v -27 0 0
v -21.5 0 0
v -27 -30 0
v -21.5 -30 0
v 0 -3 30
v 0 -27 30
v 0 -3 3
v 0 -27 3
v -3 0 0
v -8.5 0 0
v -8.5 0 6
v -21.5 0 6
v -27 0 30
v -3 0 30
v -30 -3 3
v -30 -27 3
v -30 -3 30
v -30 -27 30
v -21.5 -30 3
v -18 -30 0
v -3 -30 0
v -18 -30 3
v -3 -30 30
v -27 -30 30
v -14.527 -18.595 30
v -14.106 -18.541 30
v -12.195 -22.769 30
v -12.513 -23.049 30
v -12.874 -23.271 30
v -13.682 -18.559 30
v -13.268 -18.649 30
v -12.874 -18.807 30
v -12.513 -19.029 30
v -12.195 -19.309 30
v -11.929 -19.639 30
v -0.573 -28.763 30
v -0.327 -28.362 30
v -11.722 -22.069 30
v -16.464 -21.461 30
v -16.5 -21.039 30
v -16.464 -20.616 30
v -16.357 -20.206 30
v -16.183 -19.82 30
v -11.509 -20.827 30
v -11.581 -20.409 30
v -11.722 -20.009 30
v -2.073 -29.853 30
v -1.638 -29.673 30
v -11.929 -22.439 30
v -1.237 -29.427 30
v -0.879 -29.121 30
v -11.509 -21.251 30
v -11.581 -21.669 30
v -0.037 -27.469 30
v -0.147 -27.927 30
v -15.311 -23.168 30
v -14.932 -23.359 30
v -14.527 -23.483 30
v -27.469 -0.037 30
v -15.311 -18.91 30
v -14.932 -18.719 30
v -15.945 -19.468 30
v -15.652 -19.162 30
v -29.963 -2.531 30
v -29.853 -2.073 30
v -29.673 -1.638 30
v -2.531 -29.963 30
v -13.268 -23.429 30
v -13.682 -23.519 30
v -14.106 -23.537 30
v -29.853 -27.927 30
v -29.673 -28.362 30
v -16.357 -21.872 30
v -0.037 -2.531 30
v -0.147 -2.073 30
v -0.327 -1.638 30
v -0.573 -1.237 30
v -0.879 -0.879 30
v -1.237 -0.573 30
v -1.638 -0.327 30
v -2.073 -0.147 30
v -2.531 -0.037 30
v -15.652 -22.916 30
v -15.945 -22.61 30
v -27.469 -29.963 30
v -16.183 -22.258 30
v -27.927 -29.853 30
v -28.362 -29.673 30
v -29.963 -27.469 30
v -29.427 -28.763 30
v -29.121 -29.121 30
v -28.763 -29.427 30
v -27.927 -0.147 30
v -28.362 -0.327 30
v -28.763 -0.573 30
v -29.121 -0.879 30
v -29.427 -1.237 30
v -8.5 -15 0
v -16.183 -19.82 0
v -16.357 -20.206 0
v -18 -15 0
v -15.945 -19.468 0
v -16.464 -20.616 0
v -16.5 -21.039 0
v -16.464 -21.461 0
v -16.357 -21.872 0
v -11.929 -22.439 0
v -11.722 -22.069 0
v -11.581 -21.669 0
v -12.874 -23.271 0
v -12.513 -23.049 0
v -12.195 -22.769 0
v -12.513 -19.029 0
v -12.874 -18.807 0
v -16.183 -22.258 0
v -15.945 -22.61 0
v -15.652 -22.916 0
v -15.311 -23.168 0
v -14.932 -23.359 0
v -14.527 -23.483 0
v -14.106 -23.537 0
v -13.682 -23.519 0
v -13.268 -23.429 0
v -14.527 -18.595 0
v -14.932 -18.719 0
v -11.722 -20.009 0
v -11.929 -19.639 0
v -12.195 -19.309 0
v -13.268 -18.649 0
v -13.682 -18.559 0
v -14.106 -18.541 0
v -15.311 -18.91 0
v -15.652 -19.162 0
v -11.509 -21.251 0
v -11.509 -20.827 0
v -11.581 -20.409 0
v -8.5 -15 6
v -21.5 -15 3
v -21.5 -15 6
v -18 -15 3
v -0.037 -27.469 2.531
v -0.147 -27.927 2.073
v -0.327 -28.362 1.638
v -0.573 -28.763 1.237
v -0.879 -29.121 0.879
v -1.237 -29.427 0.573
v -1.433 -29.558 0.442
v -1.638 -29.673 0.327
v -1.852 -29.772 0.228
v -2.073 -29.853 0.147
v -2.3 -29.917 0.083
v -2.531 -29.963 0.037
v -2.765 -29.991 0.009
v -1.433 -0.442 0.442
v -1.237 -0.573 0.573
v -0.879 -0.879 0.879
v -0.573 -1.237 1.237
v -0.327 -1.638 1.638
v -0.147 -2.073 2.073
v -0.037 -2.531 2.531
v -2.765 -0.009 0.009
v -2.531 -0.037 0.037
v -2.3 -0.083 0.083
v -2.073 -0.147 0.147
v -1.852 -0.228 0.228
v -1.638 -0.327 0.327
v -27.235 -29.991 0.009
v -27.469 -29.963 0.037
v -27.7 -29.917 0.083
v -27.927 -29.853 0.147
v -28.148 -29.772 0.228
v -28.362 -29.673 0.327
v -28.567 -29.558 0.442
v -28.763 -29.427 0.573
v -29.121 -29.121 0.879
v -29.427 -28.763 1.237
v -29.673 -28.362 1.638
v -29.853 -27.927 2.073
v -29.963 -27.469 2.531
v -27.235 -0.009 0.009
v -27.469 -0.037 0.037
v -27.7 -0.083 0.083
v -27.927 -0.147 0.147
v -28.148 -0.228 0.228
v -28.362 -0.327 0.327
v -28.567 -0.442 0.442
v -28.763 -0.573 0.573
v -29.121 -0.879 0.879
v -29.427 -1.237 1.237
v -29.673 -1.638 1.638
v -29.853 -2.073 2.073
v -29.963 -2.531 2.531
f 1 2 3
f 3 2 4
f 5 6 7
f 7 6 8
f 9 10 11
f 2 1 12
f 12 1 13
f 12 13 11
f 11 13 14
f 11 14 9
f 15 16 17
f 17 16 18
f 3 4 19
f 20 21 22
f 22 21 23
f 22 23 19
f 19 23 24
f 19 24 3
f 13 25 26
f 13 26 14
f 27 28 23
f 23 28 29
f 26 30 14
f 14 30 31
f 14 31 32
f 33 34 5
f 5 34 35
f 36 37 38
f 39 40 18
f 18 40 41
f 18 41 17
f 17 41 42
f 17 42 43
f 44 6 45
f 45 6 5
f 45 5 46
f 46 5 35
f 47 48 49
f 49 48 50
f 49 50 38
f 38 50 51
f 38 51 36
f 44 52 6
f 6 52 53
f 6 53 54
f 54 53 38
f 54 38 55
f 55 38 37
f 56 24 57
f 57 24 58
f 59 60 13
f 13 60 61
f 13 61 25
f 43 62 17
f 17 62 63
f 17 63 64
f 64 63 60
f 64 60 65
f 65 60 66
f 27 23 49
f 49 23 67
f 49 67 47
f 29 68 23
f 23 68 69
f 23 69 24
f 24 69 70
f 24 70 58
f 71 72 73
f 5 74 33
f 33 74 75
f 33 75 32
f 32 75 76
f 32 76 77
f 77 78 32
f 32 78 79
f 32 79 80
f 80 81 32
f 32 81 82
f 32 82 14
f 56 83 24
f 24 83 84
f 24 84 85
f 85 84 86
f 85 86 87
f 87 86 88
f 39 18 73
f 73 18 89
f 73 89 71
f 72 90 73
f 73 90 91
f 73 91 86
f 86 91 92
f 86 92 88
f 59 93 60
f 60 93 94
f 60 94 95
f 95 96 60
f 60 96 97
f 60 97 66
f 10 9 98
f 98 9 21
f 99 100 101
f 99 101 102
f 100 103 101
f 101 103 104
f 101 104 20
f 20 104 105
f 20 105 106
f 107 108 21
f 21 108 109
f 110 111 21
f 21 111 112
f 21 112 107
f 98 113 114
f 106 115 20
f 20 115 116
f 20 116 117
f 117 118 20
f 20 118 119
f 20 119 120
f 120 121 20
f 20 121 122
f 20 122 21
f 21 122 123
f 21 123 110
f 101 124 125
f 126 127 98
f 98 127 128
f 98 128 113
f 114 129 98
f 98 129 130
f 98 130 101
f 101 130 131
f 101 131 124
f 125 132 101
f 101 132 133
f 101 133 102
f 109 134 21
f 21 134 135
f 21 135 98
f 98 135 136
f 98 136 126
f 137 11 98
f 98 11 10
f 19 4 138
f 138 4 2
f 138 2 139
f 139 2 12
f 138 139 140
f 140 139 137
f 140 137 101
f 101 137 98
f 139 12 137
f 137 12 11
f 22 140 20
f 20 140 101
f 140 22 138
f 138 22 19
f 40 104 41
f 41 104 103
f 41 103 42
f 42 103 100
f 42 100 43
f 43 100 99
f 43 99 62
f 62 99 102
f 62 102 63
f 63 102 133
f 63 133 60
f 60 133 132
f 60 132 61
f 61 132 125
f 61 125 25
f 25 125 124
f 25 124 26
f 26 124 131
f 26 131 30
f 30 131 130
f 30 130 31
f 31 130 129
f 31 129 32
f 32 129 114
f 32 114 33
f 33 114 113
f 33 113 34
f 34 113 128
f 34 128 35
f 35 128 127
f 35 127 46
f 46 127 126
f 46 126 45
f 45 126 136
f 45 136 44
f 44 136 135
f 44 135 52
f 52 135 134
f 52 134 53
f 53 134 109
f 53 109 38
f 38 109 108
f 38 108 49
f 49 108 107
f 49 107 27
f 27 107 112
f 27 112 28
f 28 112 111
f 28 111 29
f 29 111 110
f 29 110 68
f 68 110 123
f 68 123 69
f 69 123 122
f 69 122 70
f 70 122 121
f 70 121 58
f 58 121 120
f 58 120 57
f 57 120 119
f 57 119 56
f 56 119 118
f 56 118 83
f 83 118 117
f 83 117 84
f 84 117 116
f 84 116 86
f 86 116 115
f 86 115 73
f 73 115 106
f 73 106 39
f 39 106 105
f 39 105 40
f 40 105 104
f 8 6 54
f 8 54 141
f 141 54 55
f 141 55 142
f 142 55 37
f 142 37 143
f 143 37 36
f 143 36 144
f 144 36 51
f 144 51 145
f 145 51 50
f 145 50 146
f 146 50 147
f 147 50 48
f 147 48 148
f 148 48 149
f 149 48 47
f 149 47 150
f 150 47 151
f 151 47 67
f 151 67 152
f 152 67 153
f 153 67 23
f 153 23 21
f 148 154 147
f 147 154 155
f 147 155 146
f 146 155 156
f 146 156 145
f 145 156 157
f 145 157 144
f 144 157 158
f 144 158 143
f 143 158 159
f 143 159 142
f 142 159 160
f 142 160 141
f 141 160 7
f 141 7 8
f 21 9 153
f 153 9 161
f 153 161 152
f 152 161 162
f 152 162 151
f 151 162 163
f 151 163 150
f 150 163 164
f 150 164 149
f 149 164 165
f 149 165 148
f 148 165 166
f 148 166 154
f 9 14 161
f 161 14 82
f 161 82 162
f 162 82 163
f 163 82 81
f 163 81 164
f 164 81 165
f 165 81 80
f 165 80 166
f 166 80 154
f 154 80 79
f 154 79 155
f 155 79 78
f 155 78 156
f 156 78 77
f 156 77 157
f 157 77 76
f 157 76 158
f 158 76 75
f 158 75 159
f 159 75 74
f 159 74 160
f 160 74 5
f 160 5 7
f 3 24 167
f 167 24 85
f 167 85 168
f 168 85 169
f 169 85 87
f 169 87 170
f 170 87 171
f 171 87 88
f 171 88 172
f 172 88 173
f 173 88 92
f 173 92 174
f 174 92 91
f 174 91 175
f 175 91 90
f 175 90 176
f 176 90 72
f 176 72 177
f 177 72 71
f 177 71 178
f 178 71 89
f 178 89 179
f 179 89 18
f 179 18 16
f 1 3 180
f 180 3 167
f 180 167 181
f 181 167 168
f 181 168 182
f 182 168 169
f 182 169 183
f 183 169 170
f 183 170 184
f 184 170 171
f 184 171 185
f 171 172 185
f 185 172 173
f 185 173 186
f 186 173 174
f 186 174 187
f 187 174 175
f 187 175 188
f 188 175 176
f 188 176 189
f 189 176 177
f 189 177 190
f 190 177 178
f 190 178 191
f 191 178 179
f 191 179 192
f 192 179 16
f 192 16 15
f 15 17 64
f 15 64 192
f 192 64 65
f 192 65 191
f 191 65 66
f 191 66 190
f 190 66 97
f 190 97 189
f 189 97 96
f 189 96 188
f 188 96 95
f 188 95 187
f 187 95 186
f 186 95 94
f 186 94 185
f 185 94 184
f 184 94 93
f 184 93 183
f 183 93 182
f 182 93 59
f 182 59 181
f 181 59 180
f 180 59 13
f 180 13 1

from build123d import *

# Parameters (mm, degrees)
ESQUISSE1_W              = 30
ESQUISSE1_H              = 30
BOSS_EXTRU_1_DEPTH       = 30
ESQUISSE2_W              = 13
ESQUISSE2_H              = 15
ENL_V_MAT_EXTRU_1_DEPTH  = 6
ESQUISSE3_W              = 3.5
ESQUISSE3_H              = 15
ENL_V_MAT_EXTRU_2_DEPTH  = 3
ESQUISSE4_R              = 2.5
ENL_V_MAT_EXTRU_18_DEPTH = 52.961524227
CONG_1_R                 = 3


with BuildPart() as part:
    # Esquisse1 → Boss.-Extru.1 (new body)
    with BuildSketch(Plane.XY):
        with Locations((-15, -15)):
            Rectangle(ESQUISSE1_W, ESQUISSE1_H)
    extrude(amount=BOSS_EXTRU_1_DEPTH)

    # Esquisse2 → Enlèv. mat.-Extru.1 (cut)
    with BuildSketch(Plane(origin=(0, 0, 0), x_dir=(-1, 0, 0), z_dir=(0, 0, -1))):
        with Locations((15, -7.5)):
            Rectangle(ESQUISSE2_W, ESQUISSE2_H)
    extrude(amount=-ENL_V_MAT_EXTRU_1_DEPTH, mode=Mode.SUBTRACT)

    # Esquisse3 → Enlèv. mat.-Extru.2 (cut)
    with BuildSketch(Plane(origin=(0, 0, 0), x_dir=(-1, 0, 0), z_dir=(0, 0, -1))):
        with Locations((19.75, -22.5)):
            Rectangle(ESQUISSE3_W, ESQUISSE3_H)
    extrude(amount=-ENL_V_MAT_EXTRU_2_DEPTH, mode=Mode.SUBTRACT)

    # Esquisse4 → Enlèv. mat.-Extru.18 (cut, through all)
    with BuildSketch(Plane(origin=(0, 0, 0), x_dir=(-1, 0, 0), z_dir=(0, 0, -1))):
        with Locations((14, -21.038960512)):
            Circle(ESQUISSE4_R)
    extrude(amount=-ENL_V_MAT_EXTRU_18_DEPTH, mode=Mode.SUBTRACT)

    # Congé1
    cong_1_edges = [part.edges().sort_by_distance(p)[0] for p in [
        (-30, -15, 0),
        (0, -15, 0),
        (0, -30, 15),
        (-30, -30, 15),
        (-30, 0, 15),
        (0, 0, 15),
    ]]
    fillet(cong_1_edges, radius=CONG_1_R)


solid = part.part
